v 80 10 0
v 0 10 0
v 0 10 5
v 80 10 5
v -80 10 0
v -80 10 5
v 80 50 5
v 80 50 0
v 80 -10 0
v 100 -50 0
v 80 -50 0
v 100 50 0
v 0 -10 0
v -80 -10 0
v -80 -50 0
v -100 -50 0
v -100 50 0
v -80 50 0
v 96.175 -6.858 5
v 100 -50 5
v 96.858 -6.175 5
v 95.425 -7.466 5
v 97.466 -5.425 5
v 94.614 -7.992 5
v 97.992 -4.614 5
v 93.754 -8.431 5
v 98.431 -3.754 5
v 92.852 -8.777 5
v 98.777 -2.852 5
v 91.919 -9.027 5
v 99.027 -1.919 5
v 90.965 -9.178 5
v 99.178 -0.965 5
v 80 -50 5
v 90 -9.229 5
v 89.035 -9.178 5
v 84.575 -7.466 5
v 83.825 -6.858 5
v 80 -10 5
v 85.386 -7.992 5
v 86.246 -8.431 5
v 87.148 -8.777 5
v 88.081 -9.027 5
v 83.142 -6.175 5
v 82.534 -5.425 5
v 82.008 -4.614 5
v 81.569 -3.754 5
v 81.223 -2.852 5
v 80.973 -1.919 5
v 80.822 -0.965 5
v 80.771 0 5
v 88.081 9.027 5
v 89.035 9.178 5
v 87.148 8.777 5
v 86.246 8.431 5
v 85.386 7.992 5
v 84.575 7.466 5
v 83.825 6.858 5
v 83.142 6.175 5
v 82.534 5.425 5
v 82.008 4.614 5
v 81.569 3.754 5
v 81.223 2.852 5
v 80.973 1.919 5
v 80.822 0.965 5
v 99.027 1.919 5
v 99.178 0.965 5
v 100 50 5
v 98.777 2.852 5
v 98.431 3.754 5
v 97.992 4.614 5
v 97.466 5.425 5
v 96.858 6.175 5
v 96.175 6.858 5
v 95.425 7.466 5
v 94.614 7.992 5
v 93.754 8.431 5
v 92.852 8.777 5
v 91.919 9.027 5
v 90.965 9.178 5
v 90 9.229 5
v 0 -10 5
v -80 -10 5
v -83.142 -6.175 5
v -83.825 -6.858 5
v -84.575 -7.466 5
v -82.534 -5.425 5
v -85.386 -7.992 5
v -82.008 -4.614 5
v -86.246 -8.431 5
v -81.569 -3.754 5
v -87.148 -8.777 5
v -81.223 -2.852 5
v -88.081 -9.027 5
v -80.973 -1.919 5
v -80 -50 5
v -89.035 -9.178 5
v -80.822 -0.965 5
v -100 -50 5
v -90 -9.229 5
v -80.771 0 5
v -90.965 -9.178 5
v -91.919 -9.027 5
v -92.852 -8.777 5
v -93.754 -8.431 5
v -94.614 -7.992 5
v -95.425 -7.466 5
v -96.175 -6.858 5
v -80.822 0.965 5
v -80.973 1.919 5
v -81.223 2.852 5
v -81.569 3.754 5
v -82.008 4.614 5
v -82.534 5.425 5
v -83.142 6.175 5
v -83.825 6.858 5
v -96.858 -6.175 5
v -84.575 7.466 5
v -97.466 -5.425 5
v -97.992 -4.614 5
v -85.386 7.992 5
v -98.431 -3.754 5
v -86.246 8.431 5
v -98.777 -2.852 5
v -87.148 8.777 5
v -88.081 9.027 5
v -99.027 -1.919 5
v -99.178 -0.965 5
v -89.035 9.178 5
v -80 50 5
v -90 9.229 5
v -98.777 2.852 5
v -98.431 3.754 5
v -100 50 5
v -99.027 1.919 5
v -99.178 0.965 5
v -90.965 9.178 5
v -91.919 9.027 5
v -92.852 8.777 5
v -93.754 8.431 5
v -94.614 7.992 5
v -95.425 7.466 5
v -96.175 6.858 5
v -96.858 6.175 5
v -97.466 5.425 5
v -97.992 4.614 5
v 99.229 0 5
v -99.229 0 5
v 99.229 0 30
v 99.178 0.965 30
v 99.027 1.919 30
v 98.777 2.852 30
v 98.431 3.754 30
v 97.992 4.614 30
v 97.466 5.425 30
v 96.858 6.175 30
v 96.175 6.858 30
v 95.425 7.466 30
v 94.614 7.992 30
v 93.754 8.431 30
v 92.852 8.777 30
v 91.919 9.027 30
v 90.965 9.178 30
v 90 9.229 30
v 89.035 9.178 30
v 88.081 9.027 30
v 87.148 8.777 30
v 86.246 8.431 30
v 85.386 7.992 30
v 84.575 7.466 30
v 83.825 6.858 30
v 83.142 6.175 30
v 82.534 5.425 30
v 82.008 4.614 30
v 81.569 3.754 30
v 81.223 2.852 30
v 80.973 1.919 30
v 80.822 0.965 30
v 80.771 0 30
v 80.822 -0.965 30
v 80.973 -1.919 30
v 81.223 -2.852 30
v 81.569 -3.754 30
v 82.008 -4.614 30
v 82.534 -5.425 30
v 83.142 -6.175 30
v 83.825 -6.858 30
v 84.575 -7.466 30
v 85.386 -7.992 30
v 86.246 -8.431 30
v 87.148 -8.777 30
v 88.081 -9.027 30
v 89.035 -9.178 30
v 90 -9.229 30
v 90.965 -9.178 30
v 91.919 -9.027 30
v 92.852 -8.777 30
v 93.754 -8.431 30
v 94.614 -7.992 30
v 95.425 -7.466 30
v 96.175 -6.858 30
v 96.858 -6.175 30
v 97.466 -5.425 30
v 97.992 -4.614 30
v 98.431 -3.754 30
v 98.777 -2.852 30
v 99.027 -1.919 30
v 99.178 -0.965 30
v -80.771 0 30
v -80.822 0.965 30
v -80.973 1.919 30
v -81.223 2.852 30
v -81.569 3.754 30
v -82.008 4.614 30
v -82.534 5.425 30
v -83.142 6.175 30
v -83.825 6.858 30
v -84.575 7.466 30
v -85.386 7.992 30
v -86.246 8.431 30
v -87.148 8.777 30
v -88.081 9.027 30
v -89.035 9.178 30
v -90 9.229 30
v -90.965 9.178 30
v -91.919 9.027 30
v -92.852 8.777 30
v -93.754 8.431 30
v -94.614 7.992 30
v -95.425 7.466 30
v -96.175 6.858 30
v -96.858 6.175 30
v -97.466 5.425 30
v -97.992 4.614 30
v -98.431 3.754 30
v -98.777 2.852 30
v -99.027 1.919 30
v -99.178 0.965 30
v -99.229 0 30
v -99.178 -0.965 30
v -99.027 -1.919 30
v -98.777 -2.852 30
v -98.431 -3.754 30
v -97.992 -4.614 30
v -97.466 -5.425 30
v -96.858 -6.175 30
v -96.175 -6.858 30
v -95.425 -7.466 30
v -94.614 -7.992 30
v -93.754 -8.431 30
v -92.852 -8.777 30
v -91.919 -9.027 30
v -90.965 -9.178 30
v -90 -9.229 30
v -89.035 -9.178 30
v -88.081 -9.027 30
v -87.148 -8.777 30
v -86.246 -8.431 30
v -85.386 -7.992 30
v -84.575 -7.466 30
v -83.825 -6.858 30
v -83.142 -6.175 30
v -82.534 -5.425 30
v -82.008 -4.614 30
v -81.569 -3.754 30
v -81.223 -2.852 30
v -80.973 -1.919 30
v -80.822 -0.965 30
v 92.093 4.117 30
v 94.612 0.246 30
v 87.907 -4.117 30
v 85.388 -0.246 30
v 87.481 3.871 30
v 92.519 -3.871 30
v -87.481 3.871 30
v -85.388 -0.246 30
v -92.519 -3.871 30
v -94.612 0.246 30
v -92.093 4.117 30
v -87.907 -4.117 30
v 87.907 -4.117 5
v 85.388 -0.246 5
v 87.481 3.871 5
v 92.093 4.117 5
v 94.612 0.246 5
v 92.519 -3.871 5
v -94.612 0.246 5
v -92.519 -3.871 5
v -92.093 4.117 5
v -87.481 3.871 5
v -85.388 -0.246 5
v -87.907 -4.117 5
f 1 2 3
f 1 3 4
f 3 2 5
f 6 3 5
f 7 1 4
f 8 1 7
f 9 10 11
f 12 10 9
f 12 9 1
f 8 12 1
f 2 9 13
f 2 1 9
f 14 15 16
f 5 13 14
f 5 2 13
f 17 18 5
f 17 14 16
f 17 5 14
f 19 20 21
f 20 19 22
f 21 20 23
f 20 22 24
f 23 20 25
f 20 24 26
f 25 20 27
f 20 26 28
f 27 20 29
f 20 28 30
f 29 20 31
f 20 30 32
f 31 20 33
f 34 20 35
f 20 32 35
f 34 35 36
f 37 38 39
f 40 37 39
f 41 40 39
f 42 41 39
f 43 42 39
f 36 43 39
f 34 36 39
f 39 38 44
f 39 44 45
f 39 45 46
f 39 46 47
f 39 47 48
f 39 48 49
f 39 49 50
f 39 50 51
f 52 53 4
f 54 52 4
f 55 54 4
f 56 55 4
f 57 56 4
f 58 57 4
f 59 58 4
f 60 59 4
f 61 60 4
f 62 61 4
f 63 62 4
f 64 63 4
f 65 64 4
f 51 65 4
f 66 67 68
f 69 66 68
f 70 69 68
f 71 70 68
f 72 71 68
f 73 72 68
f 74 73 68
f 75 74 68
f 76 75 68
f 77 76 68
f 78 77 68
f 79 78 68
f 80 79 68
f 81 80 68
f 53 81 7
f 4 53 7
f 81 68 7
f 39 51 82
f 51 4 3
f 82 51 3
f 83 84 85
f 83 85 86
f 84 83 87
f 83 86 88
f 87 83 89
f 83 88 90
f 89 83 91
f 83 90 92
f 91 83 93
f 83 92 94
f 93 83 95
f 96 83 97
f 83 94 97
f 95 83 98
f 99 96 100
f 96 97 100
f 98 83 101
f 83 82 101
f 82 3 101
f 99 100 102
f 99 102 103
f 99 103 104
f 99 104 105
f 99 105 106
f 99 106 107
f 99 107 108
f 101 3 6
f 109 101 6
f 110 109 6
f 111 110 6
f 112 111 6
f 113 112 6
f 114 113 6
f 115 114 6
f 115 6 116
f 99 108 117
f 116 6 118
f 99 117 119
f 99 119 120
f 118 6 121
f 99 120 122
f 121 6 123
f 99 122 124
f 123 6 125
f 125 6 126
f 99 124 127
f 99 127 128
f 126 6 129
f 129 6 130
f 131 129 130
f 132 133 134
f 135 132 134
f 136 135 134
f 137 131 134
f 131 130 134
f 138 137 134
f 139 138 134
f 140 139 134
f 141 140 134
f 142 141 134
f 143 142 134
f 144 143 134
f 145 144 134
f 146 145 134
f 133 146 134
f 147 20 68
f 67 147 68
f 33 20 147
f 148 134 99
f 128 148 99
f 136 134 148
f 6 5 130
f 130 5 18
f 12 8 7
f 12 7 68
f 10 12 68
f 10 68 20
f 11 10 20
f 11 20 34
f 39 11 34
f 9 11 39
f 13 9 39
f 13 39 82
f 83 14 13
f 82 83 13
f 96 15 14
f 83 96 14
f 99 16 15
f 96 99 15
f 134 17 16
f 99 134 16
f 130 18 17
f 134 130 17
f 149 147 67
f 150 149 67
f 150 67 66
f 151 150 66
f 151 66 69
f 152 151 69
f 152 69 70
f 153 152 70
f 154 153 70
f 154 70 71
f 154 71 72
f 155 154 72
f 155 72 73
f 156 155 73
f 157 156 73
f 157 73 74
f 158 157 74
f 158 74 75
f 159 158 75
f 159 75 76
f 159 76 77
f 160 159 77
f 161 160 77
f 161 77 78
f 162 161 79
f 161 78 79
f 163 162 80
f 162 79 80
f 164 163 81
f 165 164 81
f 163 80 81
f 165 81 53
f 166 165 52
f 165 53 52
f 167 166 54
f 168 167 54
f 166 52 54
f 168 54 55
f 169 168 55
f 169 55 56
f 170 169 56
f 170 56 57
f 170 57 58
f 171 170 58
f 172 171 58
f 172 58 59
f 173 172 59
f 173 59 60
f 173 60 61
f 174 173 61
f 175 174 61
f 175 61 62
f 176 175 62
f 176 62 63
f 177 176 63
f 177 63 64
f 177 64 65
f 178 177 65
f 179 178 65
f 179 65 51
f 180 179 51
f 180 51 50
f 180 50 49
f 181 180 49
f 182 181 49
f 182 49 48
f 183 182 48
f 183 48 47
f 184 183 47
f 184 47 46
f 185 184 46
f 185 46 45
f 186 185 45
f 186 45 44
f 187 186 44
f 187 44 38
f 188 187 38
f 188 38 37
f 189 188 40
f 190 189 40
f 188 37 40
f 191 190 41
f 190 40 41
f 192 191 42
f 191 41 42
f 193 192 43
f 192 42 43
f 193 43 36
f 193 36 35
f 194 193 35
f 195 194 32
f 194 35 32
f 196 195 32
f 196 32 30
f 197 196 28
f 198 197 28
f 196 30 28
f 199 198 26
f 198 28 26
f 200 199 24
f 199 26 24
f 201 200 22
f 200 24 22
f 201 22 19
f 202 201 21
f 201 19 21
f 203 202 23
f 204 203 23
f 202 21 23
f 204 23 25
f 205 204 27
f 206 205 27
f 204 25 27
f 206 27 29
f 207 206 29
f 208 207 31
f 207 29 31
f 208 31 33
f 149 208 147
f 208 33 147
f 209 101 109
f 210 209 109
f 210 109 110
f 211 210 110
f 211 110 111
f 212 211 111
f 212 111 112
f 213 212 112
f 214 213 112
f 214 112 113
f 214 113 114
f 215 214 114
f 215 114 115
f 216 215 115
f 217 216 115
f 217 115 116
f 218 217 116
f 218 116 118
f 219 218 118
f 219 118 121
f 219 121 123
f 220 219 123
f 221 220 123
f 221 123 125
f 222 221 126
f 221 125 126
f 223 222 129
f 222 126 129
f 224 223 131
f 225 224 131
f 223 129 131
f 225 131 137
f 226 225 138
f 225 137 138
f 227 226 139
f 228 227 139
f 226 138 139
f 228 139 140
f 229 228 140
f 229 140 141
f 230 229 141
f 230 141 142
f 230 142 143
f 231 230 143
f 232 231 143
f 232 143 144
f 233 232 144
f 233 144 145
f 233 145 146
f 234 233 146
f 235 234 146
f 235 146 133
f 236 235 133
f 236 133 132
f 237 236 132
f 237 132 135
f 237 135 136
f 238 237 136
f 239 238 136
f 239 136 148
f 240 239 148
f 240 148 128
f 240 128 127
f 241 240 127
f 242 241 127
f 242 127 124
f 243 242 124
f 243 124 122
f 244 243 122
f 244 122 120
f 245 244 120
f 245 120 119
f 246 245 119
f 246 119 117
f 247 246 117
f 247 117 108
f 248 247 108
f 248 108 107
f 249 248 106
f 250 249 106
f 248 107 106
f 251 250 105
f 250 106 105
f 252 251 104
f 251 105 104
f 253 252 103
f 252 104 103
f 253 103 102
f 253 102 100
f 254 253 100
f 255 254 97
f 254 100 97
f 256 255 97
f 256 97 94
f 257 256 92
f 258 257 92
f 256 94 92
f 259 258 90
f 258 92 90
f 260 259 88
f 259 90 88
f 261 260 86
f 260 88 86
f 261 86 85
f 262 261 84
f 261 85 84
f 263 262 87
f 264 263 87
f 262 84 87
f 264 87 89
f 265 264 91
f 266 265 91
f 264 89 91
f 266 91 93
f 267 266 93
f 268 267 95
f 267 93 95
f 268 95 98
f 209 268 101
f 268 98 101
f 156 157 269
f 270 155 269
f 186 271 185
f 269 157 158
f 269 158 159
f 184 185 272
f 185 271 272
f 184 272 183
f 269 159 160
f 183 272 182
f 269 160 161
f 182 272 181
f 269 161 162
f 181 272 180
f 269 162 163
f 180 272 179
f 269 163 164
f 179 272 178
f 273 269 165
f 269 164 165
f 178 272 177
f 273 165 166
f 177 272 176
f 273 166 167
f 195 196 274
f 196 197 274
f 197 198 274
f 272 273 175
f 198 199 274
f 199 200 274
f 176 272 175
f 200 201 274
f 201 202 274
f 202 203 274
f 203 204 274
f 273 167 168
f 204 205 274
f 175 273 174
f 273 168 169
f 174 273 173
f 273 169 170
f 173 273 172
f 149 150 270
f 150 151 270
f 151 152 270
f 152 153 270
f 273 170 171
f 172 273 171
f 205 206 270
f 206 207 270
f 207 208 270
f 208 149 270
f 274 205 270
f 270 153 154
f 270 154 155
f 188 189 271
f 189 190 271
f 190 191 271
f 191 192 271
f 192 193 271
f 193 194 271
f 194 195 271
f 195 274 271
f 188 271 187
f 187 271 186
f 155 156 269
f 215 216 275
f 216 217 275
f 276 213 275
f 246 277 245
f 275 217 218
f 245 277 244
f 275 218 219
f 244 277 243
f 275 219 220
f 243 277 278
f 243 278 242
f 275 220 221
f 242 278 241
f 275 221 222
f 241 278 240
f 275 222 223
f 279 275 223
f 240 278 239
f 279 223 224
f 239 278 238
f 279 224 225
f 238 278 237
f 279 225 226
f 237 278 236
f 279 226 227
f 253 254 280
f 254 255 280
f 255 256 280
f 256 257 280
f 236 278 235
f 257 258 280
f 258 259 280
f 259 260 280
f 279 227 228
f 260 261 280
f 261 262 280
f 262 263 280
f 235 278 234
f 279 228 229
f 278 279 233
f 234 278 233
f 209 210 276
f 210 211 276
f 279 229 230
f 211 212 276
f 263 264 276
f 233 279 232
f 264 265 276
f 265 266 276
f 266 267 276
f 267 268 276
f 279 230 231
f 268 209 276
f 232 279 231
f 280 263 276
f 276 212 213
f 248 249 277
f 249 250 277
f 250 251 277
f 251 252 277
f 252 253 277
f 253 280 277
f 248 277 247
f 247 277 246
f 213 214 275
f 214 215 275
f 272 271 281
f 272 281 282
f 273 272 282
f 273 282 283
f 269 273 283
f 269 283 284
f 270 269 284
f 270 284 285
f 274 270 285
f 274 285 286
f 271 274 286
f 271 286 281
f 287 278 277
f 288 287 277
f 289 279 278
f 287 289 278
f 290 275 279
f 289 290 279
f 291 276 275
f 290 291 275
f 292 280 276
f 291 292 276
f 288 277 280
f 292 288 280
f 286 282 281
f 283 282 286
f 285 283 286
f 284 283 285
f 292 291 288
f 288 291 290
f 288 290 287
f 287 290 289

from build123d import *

# Parameters (mm, degrees)
PAD_DEPTH    = 5
SKETCH002_R  = 9.228742
PAD001_DEPTH = 25
POCKET_DEPTH = 25


with BuildPart() as part:
    # Sketch001 → Pad (new body)
    with BuildSketch(Plane.XY):
        Polygon((0, 10), (80, 10), (80, 50), (100, 50), (100, -50), (80, -50), (80, -10), (0, -10), (-80, -10), (-80, -50), (-100, -50), (-100, 50), (-80, 50), (-80, 10), align=None)
    extrude(amount=PAD_DEPTH)

    # Sketch002 → Pad001 (new body)
    with BuildSketch(Plane.XY.offset(5)):
        with Locations((90, 0)):
            Circle(SKETCH002_R)
        with Locations((-90, 0)):
            Circle(SKETCH002_R)
    extrude(amount=PAD001_DEPTH)

    # Sketch003 → Pocket (cut)
    with BuildSketch(Plane.XY.offset(30)):
        Polygon((-87.480573, 3.871152), (-92.092803, 4.117464), (-94.61223, 0.246312), (-92.519427, -3.871152), (-87.907197, -4.117464), (-85.38777, -0.246312), align=None)
    pocket = extrude(amount=-POCKET_DEPTH, mode=Mode.SUBTRACT)

    # Mirrored: Pocket across Sketch003 V_Axis
    add(pocket.mirror(Plane(origin=(0, 0, 30), x_dir=(0, 0, 1), z_dir=(1, 0, 0))), mode=Mode.SUBTRACT)


solid = part.part
